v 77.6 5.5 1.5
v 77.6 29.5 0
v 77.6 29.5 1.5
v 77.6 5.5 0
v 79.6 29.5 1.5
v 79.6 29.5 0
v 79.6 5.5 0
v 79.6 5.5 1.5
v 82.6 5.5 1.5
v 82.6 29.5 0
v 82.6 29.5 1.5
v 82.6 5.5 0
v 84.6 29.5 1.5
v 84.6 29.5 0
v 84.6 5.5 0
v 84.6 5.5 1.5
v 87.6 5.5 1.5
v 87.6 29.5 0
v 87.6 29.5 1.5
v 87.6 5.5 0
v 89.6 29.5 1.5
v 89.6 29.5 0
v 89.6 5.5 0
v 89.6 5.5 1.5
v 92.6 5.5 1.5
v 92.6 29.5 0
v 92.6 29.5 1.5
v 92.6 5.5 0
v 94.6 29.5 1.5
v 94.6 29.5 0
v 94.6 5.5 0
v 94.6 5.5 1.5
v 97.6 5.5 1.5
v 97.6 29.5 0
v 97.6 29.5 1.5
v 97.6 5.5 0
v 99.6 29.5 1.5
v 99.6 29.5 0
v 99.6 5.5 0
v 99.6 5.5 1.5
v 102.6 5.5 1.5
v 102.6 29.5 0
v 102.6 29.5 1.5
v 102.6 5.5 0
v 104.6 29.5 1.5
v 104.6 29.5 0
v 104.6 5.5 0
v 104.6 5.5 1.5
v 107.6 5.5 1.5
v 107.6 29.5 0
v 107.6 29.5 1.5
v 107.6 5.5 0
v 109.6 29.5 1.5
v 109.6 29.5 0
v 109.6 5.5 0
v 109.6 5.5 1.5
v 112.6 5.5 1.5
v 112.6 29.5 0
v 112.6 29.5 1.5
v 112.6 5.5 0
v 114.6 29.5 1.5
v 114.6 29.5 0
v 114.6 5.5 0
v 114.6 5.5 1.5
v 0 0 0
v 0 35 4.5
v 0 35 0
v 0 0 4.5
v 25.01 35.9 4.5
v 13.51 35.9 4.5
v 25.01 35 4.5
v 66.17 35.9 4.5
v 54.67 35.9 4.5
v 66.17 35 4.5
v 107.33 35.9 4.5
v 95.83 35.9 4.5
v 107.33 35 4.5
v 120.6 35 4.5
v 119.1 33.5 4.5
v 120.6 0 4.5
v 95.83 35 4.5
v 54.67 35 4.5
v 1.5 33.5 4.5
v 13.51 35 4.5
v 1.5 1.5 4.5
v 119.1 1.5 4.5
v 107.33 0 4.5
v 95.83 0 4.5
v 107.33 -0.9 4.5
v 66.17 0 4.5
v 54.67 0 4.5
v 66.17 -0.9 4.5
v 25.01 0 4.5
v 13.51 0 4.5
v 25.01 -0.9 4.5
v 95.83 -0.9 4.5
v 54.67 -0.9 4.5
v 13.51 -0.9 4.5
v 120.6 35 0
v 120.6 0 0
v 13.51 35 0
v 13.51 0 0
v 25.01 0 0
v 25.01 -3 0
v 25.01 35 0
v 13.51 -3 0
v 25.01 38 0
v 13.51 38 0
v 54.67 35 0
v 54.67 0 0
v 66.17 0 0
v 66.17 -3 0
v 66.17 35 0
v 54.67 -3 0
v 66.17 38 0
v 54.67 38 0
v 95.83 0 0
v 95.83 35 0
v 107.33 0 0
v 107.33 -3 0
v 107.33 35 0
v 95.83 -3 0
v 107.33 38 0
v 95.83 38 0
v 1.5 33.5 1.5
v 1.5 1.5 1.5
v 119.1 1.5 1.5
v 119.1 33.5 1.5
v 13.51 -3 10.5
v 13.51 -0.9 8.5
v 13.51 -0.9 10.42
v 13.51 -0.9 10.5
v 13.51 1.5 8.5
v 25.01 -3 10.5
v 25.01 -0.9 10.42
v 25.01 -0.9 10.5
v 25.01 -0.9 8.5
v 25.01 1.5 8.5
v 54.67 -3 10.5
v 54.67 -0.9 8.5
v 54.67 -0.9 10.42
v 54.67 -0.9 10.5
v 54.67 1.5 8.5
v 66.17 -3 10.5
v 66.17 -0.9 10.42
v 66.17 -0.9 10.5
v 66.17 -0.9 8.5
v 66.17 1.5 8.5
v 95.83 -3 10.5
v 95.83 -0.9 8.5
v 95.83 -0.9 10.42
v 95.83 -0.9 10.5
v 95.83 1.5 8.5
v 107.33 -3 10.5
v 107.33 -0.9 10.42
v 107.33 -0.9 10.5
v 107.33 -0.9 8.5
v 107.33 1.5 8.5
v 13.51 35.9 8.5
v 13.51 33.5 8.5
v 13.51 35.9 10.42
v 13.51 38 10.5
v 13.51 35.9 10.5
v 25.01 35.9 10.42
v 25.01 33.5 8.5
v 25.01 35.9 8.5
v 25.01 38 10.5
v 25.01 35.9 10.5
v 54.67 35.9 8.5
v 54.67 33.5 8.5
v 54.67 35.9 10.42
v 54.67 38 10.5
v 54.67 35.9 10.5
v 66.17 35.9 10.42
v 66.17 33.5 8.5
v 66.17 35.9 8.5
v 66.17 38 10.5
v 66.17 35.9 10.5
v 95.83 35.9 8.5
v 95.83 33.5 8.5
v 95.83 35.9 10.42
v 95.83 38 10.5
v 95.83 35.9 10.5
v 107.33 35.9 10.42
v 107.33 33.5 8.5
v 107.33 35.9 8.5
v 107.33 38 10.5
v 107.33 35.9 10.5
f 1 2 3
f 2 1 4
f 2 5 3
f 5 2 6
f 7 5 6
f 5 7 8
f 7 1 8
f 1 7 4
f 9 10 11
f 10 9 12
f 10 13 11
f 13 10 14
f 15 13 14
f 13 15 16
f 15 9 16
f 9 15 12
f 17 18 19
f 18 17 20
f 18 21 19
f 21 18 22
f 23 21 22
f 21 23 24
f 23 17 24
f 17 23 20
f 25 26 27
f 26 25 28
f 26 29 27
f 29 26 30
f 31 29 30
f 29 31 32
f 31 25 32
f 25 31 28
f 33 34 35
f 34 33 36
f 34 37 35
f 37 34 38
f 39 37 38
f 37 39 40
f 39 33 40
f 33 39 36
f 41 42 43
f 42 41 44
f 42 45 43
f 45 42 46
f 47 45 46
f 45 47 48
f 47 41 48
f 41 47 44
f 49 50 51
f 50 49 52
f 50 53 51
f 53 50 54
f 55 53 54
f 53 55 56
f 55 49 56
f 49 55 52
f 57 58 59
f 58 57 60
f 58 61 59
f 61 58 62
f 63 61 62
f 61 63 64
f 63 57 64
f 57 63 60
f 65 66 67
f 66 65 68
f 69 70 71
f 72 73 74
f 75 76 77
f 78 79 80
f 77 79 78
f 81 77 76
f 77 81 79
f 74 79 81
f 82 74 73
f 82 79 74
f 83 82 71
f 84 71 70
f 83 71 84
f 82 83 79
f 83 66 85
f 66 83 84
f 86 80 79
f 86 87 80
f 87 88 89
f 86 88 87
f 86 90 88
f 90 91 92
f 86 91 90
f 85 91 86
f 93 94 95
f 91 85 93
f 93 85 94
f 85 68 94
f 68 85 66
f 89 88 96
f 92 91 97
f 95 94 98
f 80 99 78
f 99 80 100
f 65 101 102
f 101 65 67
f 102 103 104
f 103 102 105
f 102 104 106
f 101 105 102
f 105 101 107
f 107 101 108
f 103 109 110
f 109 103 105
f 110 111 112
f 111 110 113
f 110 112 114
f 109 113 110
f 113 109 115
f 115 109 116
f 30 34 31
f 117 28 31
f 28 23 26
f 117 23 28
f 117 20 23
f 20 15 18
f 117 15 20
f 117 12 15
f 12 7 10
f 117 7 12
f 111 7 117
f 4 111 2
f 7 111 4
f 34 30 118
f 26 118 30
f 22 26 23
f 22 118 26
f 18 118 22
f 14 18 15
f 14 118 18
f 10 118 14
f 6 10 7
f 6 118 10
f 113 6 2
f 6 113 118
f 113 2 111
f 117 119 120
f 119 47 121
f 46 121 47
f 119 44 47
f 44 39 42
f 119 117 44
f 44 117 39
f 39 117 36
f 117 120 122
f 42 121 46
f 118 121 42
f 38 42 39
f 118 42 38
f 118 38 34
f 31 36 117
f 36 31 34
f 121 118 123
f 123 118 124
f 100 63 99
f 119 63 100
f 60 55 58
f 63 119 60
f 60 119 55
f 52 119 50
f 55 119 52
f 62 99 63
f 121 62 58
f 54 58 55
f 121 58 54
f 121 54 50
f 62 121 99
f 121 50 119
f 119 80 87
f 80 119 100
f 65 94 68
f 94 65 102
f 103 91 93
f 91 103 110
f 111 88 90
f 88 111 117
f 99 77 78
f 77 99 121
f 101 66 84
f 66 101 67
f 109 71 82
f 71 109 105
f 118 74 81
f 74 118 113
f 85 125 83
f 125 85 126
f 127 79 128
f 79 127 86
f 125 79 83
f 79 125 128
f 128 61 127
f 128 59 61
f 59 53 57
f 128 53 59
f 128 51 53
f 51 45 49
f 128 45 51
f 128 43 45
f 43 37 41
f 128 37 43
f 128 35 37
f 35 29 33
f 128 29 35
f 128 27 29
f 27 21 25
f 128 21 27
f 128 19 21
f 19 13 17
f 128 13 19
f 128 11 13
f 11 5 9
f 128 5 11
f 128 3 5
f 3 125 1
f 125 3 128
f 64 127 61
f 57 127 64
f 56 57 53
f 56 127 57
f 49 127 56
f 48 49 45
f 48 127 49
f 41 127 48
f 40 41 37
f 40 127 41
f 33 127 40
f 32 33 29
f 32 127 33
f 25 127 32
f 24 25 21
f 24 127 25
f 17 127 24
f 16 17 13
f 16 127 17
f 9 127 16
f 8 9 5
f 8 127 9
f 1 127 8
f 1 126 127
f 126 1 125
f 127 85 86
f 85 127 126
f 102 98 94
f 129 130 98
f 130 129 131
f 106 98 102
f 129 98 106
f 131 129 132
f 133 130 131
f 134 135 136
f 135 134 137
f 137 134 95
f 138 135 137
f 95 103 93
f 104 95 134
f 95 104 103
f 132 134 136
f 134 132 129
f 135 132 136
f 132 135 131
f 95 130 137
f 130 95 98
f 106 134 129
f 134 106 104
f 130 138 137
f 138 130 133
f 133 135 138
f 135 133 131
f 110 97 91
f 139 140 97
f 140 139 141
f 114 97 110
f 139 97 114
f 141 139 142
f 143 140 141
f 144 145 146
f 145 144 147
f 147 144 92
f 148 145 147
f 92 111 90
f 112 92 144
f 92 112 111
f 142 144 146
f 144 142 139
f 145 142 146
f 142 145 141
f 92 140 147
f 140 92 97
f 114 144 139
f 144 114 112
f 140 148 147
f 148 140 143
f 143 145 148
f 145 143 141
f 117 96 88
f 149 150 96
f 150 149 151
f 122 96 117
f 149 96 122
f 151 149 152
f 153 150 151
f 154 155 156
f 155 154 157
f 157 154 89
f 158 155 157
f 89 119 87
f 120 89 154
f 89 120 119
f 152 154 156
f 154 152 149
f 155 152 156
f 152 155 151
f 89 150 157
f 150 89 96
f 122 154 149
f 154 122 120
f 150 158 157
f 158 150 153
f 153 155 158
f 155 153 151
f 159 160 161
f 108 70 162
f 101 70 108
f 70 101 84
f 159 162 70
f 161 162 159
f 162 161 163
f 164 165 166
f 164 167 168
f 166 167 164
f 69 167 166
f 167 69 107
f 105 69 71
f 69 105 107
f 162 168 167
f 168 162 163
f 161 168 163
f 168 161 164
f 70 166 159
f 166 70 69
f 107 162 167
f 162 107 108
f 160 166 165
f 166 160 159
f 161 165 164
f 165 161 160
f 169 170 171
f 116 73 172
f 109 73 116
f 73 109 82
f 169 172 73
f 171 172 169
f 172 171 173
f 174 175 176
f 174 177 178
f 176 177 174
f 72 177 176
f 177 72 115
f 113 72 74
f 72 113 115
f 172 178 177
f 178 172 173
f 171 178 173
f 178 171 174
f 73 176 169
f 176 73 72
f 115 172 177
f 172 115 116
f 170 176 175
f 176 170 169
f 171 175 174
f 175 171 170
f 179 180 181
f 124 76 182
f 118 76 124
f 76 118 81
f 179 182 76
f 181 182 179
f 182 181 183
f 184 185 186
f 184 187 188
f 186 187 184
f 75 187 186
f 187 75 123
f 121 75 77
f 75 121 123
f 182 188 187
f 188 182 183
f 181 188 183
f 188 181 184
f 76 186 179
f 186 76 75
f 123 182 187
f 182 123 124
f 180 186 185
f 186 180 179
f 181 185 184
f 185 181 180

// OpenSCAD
// 57.8mm for the board, doubled for sensor space
inner_length_param = 57.8;

inner_width_param = 31.0;

inner_height = 3;

// 5mm to allow for RF shield and soldered headers. Used to hold up the board by the edges
floor_to_pcb_margin = 4;
pcb_wall_margin = 0.5; //margin from the wall to the PCB edge - does result in USB port being slightly recessed

bottom_thickness = 1.5;

wall_thickness = 1.5;

snap_offset_from_top = 4;


//CALCULATED VALUES
//add margin so board is not pressed tight
inner_length = inner_length_param + pcb_wall_margin*2;
inner_width = inner_width_param + pcb_wall_margin*2;

//TODO use above values if printed case has PCB wall margin
//inner_length = inner_length_param;
//inner_width = inner_width_param;

//add wall thickness
inner_length_full = inner_length*2;
length_full = inner_length_full+wall_thickness*2;

width_full = inner_width+wall_thickness*2;

height_full = bottom_thickness+inner_height;





//lid with clips
//meant to be 6mm, but ended up as 3.8mm
translate([0, 0, 0]) union()
{
    //generate empty box with cutouts
    difference()
    {
        cube([length_full, width_full, height_full], 0);
        
        // main cutout
        translate([wall_thickness, wall_thickness, bottom_thickness]) cube([inner_length_full, inner_width, inner_height+1]);
        
        //vent holes
        generate_vent_holes();
    }
    
    //snapfit clips
    generate_snapfit_clips();
    
}

//6 1cm clips. 3 on each side
//3.8mm from top to the top of the 2mm height triangle
module generate_snapfit_clips()
{
    hole_width = 12; //needed so that clip can be centered in hole
    clip_width = 11.5;
    clip_triangle_base = 2;
    clip_triangle_height = 2.5;
    
    spacer_thickness = 1.0;
    
    riser_thickness = 2;
    riser_height = bottom_thickness + inner_height + snap_offset_from_top + clip_triangle_base;
    
    //put holes at 10, 45, 90%
    //clip_y_offset = -1*hole_thickness/2;
    base_x_offset = wall_thickness + 0.10*inner_length_full;
    
    triangle_z_offset = height_full + snap_offset_from_top;
    
    //along y axis
    translate([(hole_width-clip_width)/2, 0, 0]) generate_snapfit_line();
    //along far wall
    //since we need the clips to face inwards, mirror along XZ axis through origin then translate
    translate([(hole_width-clip_width)/2, width_full, 0]) mirror([0,1,0]) generate_snapfit_line();
    
    //generate a line of 3
    module generate_snapfit_line()
    {
        translate([base_x_offset, 0, 0]) generate_snapfit_assembly(); 
        translate([base_x_offset + inner_length_full*0.35, 0, 0]) generate_snapfit_assembly();
        translate([base_x_offset + inner_length_full*0.7, 0, 0]) generate_snapfit_assembly();
    }
    
    //generate a single snapfit
    module generate_snapfit_assembly()
    {
        //spacer
        translate([0, -spacer_thickness, 0]) cube([clip_width, spacer_thickness+0.1, bottom_thickness+inner_height]);
        //riser
        translate([0, -spacer_thickness-riser_thickness, 0]) cube([clip_width, riser_thickness+0.1, riser_height]);
        //clip
        translate([clip_width, clip_triangle_height-spacer_thickness, riser_height-clip_triangle_base]) rotate([0, 0, 180]) prism(clip_width, clip_triangle_height, clip_triangle_base);
    }
}

module generate_vent_holes()
{
    //top of sensor bay
    translate([length_full - total_vent_line_length(8, 2, 3) - 6, (width_full-24)/2, bottom_thickness+1]) rotate([-90,0,0]) generate_vent_line(8, 24, 2, 5, 3);
    
    
    module generate_vent_line(count, height, width, thickness, spacing)
    {
        function xpos(n,wi,sp) = n*wi + n*sp;
        
        //generate the specified size holes at the given spacing
        for(i = [0:1:count-1])
        {            
            //echo("xpos:");
            //echo(xpos(i,width,spacing));
            translate([xpos(i,width,spacing), 0, 0]) gen_hole();  
        }
        
        module gen_hole()
        {
            cube([width, thickness, height]);
        }
    }
    
    //calculate total length from the left of the first vent hole to the right of the last
    function total_vent_line_length(count, width, spacing) = 
       count*(width+spacing) - spacing;
    
}

//from https://en.wikibooks.org/wiki/OpenSCAD_User_Manual/Primitive_Solids#polyhedron
module prism(l, w, h){
   polyhedron(
           points=[[0,0,0], [l,0,0], [l,w,0], [0,w,0], [0,w,h], [l,w,h]],
           faces=[[0,1,2,3],[5,4,3,2],[0,4,5,1],[0,3,4],[5,2,1]]
           );
  
   }
